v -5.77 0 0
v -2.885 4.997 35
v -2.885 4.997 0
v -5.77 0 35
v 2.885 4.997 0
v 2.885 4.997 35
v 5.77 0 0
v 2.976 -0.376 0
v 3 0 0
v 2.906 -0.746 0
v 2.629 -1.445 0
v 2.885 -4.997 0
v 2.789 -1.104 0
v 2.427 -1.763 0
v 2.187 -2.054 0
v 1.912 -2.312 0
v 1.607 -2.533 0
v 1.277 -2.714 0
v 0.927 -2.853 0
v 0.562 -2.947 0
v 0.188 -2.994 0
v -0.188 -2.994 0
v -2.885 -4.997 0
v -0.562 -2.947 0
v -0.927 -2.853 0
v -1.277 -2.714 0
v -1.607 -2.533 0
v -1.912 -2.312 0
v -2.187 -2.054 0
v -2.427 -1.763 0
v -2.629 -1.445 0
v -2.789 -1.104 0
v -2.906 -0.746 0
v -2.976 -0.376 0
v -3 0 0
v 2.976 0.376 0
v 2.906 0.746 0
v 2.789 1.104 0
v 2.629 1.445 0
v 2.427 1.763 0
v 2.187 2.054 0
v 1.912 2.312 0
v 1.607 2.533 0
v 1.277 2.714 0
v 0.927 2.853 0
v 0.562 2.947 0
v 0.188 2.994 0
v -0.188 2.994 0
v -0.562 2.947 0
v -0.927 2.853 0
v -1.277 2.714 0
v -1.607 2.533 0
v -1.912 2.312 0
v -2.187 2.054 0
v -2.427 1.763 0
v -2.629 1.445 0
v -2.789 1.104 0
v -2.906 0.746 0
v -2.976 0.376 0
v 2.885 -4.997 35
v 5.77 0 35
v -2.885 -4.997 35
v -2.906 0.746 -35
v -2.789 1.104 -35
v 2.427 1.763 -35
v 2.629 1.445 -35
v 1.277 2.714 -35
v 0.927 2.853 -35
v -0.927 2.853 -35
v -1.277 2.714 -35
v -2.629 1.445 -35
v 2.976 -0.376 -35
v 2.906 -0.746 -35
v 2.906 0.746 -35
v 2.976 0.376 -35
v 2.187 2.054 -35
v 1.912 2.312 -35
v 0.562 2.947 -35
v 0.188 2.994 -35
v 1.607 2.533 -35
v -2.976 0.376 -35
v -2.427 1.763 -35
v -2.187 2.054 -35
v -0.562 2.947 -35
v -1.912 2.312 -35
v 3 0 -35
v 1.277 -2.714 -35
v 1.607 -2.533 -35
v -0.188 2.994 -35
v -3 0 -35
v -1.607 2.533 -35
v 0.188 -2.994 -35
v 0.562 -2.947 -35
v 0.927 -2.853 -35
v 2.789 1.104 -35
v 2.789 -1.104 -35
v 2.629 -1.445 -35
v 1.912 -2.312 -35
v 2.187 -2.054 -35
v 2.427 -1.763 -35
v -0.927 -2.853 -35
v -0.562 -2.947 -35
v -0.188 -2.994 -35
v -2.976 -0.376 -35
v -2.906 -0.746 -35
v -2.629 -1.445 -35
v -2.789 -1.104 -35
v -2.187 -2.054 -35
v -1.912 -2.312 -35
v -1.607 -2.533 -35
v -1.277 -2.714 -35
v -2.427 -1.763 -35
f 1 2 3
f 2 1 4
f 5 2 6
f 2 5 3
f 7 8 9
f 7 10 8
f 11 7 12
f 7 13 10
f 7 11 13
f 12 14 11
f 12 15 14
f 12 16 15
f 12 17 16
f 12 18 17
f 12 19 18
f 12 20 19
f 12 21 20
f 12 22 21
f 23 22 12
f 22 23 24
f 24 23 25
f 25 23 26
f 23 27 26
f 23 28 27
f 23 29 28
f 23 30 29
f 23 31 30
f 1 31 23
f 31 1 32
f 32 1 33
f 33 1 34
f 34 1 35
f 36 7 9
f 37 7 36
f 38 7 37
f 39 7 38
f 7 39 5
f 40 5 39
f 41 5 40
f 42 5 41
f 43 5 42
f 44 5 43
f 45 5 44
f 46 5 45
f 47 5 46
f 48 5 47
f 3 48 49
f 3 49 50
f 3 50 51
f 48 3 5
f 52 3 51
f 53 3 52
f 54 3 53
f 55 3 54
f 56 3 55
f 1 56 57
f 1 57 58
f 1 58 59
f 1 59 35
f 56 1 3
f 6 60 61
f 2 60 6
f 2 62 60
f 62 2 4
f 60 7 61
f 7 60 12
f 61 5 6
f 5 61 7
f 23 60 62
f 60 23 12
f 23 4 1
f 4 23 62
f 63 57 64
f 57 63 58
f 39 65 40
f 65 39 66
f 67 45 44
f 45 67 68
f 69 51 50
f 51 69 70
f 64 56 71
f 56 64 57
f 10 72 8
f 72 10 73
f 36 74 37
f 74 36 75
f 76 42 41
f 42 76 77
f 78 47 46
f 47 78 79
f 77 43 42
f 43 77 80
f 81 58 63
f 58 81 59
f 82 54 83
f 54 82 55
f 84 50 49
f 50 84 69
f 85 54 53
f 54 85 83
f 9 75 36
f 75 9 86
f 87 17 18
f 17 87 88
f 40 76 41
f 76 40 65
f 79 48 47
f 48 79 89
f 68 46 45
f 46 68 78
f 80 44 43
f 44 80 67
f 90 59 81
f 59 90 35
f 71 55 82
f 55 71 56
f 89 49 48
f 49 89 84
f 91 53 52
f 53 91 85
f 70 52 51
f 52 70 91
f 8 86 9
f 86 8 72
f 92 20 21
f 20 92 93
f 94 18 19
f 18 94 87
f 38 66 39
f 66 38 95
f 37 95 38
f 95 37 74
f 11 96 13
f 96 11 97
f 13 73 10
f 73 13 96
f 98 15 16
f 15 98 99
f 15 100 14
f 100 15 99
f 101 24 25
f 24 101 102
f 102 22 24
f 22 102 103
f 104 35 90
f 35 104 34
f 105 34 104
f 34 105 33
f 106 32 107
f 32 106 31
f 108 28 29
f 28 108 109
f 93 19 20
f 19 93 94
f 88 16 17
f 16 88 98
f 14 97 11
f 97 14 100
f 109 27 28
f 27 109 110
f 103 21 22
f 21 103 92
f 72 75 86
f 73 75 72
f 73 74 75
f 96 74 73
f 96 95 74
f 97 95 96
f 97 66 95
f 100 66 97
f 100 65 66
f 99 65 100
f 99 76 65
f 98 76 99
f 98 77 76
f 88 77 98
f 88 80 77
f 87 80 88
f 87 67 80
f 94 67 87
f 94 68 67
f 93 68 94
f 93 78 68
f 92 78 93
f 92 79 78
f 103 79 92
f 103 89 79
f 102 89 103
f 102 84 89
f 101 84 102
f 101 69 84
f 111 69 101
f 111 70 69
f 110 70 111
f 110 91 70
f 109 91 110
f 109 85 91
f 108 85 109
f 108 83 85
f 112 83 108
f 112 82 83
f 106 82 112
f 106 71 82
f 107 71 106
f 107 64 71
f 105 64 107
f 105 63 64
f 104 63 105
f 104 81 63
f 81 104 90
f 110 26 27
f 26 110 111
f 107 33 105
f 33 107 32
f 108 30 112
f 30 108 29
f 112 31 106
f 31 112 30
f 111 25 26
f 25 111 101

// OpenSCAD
$fn = 50;


difference() {
	union() {
		translate(v = [0, 0, 0]) {
			rotate(a = [0, 0, 0]) {
				translate(v = [0, 0, 0]) {
					rotate(a = [0, 0, 0]) {
						linear_extrude(height = 35) {
							polygon(points = [[5.7700000000, 0.0000000000], [2.8850000000, 4.9969665798], [-2.8850000000, 4.9969665798], [-5.7700000000, 0.0000000000], [-2.8850000000, -4.9969665798], [2.8850000000, -4.9969665798]]);
						}
					}
				}
			}
		}
		translate(v = [0, 0, -35]) {
			rotate(a = [0, 0, 0]) {
				cylinder(h = 35, r = 3.0000000000);
			}
		}
	}
	union();
}
